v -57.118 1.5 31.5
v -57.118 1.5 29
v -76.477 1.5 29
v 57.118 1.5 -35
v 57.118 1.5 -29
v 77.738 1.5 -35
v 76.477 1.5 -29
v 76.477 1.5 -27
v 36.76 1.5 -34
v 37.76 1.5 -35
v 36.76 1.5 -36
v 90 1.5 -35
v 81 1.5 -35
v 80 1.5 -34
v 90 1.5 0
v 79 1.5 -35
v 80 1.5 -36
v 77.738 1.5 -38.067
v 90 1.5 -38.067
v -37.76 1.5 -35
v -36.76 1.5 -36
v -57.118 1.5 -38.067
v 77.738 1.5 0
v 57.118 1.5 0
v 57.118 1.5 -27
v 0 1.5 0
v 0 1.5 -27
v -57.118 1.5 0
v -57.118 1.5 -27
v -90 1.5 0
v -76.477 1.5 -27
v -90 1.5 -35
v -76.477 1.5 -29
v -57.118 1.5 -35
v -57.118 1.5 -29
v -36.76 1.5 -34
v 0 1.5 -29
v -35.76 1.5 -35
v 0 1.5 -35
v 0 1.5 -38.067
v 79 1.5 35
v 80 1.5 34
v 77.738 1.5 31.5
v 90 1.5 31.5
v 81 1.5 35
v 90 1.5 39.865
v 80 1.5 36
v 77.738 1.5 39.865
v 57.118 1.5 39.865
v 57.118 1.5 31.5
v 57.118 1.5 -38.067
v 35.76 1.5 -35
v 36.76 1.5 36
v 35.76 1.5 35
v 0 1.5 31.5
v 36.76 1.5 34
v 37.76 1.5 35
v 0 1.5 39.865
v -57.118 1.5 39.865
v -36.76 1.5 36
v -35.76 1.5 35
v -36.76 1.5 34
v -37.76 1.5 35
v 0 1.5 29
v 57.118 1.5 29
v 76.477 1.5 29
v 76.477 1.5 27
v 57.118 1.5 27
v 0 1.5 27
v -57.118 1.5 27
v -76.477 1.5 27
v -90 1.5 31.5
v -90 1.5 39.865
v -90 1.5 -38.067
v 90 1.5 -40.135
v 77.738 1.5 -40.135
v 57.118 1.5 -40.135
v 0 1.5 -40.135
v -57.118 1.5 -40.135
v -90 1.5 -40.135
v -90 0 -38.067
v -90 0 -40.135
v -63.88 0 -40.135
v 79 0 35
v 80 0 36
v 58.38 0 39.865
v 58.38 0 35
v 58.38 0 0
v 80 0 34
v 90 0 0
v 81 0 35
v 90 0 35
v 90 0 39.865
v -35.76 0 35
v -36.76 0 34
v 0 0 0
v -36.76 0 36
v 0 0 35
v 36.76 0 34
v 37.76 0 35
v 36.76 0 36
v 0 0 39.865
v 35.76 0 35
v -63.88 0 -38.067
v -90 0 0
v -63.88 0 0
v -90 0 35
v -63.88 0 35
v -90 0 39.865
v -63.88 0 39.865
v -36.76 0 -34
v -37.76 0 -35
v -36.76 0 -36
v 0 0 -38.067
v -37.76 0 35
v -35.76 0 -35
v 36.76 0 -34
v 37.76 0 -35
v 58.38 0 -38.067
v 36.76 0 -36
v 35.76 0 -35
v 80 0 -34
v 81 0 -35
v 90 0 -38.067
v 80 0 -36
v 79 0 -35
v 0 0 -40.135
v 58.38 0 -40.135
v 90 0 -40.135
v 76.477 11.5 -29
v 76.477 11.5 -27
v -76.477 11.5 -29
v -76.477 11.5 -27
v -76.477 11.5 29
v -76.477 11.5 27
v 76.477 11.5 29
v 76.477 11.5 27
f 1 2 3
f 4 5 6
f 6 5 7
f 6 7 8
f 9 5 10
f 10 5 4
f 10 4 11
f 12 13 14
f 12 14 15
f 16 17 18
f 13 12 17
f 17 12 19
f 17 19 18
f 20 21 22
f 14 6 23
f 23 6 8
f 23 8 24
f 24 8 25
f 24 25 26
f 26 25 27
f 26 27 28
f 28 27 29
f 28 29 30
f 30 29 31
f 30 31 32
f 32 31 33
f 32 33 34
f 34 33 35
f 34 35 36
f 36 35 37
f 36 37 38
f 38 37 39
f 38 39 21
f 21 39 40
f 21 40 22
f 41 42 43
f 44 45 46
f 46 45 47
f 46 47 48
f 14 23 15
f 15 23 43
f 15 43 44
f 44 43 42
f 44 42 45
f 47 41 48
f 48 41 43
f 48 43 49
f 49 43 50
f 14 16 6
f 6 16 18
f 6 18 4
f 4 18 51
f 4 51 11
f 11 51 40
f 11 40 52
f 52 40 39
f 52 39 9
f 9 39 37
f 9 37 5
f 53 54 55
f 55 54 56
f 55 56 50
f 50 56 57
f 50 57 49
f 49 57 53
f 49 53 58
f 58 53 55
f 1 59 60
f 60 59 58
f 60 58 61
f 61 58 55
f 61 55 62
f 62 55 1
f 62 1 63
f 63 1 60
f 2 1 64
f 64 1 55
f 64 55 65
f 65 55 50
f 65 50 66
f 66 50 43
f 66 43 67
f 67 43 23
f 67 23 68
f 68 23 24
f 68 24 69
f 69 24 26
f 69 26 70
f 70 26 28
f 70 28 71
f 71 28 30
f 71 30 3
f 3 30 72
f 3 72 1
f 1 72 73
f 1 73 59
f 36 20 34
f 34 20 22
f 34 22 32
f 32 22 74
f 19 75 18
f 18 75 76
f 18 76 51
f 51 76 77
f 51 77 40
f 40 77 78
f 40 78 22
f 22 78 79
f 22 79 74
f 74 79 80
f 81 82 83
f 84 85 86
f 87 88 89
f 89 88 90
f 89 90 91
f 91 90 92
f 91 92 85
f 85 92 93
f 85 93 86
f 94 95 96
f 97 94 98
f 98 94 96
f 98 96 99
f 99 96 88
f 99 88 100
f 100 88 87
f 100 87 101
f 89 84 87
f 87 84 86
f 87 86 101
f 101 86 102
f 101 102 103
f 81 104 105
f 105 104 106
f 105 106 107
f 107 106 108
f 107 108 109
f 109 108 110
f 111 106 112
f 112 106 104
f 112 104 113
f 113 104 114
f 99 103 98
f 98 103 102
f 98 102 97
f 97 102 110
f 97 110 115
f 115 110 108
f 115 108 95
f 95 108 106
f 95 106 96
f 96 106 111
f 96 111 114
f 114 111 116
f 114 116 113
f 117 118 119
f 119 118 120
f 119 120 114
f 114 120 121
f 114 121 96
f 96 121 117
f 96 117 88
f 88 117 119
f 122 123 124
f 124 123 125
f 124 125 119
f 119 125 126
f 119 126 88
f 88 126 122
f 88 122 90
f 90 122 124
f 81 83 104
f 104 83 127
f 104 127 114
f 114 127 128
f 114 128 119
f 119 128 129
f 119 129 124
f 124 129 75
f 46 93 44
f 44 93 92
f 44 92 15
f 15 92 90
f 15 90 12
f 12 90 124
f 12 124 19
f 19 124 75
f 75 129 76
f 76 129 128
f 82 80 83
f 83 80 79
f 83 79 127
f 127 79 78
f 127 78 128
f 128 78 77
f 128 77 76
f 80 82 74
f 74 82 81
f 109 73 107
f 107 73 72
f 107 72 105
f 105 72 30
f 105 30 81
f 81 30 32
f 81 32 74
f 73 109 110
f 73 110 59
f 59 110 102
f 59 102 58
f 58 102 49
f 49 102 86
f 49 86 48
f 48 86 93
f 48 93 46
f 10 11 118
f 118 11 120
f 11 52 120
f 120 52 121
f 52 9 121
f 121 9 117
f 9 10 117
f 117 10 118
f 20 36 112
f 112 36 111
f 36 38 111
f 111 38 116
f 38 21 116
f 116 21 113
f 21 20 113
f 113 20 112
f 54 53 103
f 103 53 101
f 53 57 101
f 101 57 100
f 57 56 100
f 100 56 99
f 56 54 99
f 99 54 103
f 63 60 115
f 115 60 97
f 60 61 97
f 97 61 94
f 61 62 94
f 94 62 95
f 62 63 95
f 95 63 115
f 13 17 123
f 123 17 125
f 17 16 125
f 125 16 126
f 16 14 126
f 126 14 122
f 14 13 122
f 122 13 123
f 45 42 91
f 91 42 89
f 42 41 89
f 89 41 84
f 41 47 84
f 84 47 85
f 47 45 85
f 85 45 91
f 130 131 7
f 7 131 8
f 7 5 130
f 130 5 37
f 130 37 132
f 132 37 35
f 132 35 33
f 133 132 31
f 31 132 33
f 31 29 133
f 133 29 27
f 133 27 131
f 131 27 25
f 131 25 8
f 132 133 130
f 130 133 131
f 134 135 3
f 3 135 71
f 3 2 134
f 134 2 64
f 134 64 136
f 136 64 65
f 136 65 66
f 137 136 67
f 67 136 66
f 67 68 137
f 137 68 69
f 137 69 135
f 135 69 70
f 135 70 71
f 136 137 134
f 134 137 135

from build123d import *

# Parameters (mm, degrees)
SKETCH_1_W      = 180
SKETCH_1_H      = 80
EXTRUDE_1_DEPTH = 1.5
SKETCH_2_W      = 152.95364467
SKETCH_2_H      = 2
EXTRUDE_2_DEPTH = 10


with BuildPart() as part:
    # 草图1 → 凸台-拉伸1 (new body)
    with BuildSketch(Plane(origin=(0, 0, 0), x_dir=(1, 0, 0), z_dir=(0, 1, 0))):
        with Locations((0, 0.134932534)):
            Rectangle(SKETCH_1_W, SKETCH_1_H)
        Polygon((37.76, 35), (36.76, 34), (35.76, 35), (36.76, 36), align=None, mode=Mode.SUBTRACT)
        Polygon((-36.76, 34), (-35.76, 35), (-36.76, 36), (-37.76, 35), align=None, mode=Mode.SUBTRACT)
        Polygon((36.76, -36), (37.76, -35), (36.76, -34), (35.76, -35), align=None, mode=Mode.SUBTRACT)
        Polygon((-37.76, -35), (-36.76, -34), (-35.76, -35), (-36.76, -36), align=None, mode=Mode.SUBTRACT)
        Polygon((81, -35), (80, -36), (79, -35), (80, -34), align=None, mode=Mode.SUBTRACT)
        Polygon((80, 36), (79, 35), (80, 34), (81, 35), align=None, mode=Mode.SUBTRACT)
    extrude(amount=EXTRUDE_1_DEPTH)

    # 草图2 → 凸台-拉伸2 (add)
    with BuildSketch(Plane(origin=(0, 1.5, 0), x_dir=(1, 0, 0), z_dir=(0, 1, 0))):
        with Locations((0, 28)):
            Rectangle(SKETCH_2_W, SKETCH_2_H)
        with Locations((0, -28)):
            Rectangle(SKETCH_2_W, SKETCH_2_H)
    extrude(amount=EXTRUDE_2_DEPTH)


solid = part.part
